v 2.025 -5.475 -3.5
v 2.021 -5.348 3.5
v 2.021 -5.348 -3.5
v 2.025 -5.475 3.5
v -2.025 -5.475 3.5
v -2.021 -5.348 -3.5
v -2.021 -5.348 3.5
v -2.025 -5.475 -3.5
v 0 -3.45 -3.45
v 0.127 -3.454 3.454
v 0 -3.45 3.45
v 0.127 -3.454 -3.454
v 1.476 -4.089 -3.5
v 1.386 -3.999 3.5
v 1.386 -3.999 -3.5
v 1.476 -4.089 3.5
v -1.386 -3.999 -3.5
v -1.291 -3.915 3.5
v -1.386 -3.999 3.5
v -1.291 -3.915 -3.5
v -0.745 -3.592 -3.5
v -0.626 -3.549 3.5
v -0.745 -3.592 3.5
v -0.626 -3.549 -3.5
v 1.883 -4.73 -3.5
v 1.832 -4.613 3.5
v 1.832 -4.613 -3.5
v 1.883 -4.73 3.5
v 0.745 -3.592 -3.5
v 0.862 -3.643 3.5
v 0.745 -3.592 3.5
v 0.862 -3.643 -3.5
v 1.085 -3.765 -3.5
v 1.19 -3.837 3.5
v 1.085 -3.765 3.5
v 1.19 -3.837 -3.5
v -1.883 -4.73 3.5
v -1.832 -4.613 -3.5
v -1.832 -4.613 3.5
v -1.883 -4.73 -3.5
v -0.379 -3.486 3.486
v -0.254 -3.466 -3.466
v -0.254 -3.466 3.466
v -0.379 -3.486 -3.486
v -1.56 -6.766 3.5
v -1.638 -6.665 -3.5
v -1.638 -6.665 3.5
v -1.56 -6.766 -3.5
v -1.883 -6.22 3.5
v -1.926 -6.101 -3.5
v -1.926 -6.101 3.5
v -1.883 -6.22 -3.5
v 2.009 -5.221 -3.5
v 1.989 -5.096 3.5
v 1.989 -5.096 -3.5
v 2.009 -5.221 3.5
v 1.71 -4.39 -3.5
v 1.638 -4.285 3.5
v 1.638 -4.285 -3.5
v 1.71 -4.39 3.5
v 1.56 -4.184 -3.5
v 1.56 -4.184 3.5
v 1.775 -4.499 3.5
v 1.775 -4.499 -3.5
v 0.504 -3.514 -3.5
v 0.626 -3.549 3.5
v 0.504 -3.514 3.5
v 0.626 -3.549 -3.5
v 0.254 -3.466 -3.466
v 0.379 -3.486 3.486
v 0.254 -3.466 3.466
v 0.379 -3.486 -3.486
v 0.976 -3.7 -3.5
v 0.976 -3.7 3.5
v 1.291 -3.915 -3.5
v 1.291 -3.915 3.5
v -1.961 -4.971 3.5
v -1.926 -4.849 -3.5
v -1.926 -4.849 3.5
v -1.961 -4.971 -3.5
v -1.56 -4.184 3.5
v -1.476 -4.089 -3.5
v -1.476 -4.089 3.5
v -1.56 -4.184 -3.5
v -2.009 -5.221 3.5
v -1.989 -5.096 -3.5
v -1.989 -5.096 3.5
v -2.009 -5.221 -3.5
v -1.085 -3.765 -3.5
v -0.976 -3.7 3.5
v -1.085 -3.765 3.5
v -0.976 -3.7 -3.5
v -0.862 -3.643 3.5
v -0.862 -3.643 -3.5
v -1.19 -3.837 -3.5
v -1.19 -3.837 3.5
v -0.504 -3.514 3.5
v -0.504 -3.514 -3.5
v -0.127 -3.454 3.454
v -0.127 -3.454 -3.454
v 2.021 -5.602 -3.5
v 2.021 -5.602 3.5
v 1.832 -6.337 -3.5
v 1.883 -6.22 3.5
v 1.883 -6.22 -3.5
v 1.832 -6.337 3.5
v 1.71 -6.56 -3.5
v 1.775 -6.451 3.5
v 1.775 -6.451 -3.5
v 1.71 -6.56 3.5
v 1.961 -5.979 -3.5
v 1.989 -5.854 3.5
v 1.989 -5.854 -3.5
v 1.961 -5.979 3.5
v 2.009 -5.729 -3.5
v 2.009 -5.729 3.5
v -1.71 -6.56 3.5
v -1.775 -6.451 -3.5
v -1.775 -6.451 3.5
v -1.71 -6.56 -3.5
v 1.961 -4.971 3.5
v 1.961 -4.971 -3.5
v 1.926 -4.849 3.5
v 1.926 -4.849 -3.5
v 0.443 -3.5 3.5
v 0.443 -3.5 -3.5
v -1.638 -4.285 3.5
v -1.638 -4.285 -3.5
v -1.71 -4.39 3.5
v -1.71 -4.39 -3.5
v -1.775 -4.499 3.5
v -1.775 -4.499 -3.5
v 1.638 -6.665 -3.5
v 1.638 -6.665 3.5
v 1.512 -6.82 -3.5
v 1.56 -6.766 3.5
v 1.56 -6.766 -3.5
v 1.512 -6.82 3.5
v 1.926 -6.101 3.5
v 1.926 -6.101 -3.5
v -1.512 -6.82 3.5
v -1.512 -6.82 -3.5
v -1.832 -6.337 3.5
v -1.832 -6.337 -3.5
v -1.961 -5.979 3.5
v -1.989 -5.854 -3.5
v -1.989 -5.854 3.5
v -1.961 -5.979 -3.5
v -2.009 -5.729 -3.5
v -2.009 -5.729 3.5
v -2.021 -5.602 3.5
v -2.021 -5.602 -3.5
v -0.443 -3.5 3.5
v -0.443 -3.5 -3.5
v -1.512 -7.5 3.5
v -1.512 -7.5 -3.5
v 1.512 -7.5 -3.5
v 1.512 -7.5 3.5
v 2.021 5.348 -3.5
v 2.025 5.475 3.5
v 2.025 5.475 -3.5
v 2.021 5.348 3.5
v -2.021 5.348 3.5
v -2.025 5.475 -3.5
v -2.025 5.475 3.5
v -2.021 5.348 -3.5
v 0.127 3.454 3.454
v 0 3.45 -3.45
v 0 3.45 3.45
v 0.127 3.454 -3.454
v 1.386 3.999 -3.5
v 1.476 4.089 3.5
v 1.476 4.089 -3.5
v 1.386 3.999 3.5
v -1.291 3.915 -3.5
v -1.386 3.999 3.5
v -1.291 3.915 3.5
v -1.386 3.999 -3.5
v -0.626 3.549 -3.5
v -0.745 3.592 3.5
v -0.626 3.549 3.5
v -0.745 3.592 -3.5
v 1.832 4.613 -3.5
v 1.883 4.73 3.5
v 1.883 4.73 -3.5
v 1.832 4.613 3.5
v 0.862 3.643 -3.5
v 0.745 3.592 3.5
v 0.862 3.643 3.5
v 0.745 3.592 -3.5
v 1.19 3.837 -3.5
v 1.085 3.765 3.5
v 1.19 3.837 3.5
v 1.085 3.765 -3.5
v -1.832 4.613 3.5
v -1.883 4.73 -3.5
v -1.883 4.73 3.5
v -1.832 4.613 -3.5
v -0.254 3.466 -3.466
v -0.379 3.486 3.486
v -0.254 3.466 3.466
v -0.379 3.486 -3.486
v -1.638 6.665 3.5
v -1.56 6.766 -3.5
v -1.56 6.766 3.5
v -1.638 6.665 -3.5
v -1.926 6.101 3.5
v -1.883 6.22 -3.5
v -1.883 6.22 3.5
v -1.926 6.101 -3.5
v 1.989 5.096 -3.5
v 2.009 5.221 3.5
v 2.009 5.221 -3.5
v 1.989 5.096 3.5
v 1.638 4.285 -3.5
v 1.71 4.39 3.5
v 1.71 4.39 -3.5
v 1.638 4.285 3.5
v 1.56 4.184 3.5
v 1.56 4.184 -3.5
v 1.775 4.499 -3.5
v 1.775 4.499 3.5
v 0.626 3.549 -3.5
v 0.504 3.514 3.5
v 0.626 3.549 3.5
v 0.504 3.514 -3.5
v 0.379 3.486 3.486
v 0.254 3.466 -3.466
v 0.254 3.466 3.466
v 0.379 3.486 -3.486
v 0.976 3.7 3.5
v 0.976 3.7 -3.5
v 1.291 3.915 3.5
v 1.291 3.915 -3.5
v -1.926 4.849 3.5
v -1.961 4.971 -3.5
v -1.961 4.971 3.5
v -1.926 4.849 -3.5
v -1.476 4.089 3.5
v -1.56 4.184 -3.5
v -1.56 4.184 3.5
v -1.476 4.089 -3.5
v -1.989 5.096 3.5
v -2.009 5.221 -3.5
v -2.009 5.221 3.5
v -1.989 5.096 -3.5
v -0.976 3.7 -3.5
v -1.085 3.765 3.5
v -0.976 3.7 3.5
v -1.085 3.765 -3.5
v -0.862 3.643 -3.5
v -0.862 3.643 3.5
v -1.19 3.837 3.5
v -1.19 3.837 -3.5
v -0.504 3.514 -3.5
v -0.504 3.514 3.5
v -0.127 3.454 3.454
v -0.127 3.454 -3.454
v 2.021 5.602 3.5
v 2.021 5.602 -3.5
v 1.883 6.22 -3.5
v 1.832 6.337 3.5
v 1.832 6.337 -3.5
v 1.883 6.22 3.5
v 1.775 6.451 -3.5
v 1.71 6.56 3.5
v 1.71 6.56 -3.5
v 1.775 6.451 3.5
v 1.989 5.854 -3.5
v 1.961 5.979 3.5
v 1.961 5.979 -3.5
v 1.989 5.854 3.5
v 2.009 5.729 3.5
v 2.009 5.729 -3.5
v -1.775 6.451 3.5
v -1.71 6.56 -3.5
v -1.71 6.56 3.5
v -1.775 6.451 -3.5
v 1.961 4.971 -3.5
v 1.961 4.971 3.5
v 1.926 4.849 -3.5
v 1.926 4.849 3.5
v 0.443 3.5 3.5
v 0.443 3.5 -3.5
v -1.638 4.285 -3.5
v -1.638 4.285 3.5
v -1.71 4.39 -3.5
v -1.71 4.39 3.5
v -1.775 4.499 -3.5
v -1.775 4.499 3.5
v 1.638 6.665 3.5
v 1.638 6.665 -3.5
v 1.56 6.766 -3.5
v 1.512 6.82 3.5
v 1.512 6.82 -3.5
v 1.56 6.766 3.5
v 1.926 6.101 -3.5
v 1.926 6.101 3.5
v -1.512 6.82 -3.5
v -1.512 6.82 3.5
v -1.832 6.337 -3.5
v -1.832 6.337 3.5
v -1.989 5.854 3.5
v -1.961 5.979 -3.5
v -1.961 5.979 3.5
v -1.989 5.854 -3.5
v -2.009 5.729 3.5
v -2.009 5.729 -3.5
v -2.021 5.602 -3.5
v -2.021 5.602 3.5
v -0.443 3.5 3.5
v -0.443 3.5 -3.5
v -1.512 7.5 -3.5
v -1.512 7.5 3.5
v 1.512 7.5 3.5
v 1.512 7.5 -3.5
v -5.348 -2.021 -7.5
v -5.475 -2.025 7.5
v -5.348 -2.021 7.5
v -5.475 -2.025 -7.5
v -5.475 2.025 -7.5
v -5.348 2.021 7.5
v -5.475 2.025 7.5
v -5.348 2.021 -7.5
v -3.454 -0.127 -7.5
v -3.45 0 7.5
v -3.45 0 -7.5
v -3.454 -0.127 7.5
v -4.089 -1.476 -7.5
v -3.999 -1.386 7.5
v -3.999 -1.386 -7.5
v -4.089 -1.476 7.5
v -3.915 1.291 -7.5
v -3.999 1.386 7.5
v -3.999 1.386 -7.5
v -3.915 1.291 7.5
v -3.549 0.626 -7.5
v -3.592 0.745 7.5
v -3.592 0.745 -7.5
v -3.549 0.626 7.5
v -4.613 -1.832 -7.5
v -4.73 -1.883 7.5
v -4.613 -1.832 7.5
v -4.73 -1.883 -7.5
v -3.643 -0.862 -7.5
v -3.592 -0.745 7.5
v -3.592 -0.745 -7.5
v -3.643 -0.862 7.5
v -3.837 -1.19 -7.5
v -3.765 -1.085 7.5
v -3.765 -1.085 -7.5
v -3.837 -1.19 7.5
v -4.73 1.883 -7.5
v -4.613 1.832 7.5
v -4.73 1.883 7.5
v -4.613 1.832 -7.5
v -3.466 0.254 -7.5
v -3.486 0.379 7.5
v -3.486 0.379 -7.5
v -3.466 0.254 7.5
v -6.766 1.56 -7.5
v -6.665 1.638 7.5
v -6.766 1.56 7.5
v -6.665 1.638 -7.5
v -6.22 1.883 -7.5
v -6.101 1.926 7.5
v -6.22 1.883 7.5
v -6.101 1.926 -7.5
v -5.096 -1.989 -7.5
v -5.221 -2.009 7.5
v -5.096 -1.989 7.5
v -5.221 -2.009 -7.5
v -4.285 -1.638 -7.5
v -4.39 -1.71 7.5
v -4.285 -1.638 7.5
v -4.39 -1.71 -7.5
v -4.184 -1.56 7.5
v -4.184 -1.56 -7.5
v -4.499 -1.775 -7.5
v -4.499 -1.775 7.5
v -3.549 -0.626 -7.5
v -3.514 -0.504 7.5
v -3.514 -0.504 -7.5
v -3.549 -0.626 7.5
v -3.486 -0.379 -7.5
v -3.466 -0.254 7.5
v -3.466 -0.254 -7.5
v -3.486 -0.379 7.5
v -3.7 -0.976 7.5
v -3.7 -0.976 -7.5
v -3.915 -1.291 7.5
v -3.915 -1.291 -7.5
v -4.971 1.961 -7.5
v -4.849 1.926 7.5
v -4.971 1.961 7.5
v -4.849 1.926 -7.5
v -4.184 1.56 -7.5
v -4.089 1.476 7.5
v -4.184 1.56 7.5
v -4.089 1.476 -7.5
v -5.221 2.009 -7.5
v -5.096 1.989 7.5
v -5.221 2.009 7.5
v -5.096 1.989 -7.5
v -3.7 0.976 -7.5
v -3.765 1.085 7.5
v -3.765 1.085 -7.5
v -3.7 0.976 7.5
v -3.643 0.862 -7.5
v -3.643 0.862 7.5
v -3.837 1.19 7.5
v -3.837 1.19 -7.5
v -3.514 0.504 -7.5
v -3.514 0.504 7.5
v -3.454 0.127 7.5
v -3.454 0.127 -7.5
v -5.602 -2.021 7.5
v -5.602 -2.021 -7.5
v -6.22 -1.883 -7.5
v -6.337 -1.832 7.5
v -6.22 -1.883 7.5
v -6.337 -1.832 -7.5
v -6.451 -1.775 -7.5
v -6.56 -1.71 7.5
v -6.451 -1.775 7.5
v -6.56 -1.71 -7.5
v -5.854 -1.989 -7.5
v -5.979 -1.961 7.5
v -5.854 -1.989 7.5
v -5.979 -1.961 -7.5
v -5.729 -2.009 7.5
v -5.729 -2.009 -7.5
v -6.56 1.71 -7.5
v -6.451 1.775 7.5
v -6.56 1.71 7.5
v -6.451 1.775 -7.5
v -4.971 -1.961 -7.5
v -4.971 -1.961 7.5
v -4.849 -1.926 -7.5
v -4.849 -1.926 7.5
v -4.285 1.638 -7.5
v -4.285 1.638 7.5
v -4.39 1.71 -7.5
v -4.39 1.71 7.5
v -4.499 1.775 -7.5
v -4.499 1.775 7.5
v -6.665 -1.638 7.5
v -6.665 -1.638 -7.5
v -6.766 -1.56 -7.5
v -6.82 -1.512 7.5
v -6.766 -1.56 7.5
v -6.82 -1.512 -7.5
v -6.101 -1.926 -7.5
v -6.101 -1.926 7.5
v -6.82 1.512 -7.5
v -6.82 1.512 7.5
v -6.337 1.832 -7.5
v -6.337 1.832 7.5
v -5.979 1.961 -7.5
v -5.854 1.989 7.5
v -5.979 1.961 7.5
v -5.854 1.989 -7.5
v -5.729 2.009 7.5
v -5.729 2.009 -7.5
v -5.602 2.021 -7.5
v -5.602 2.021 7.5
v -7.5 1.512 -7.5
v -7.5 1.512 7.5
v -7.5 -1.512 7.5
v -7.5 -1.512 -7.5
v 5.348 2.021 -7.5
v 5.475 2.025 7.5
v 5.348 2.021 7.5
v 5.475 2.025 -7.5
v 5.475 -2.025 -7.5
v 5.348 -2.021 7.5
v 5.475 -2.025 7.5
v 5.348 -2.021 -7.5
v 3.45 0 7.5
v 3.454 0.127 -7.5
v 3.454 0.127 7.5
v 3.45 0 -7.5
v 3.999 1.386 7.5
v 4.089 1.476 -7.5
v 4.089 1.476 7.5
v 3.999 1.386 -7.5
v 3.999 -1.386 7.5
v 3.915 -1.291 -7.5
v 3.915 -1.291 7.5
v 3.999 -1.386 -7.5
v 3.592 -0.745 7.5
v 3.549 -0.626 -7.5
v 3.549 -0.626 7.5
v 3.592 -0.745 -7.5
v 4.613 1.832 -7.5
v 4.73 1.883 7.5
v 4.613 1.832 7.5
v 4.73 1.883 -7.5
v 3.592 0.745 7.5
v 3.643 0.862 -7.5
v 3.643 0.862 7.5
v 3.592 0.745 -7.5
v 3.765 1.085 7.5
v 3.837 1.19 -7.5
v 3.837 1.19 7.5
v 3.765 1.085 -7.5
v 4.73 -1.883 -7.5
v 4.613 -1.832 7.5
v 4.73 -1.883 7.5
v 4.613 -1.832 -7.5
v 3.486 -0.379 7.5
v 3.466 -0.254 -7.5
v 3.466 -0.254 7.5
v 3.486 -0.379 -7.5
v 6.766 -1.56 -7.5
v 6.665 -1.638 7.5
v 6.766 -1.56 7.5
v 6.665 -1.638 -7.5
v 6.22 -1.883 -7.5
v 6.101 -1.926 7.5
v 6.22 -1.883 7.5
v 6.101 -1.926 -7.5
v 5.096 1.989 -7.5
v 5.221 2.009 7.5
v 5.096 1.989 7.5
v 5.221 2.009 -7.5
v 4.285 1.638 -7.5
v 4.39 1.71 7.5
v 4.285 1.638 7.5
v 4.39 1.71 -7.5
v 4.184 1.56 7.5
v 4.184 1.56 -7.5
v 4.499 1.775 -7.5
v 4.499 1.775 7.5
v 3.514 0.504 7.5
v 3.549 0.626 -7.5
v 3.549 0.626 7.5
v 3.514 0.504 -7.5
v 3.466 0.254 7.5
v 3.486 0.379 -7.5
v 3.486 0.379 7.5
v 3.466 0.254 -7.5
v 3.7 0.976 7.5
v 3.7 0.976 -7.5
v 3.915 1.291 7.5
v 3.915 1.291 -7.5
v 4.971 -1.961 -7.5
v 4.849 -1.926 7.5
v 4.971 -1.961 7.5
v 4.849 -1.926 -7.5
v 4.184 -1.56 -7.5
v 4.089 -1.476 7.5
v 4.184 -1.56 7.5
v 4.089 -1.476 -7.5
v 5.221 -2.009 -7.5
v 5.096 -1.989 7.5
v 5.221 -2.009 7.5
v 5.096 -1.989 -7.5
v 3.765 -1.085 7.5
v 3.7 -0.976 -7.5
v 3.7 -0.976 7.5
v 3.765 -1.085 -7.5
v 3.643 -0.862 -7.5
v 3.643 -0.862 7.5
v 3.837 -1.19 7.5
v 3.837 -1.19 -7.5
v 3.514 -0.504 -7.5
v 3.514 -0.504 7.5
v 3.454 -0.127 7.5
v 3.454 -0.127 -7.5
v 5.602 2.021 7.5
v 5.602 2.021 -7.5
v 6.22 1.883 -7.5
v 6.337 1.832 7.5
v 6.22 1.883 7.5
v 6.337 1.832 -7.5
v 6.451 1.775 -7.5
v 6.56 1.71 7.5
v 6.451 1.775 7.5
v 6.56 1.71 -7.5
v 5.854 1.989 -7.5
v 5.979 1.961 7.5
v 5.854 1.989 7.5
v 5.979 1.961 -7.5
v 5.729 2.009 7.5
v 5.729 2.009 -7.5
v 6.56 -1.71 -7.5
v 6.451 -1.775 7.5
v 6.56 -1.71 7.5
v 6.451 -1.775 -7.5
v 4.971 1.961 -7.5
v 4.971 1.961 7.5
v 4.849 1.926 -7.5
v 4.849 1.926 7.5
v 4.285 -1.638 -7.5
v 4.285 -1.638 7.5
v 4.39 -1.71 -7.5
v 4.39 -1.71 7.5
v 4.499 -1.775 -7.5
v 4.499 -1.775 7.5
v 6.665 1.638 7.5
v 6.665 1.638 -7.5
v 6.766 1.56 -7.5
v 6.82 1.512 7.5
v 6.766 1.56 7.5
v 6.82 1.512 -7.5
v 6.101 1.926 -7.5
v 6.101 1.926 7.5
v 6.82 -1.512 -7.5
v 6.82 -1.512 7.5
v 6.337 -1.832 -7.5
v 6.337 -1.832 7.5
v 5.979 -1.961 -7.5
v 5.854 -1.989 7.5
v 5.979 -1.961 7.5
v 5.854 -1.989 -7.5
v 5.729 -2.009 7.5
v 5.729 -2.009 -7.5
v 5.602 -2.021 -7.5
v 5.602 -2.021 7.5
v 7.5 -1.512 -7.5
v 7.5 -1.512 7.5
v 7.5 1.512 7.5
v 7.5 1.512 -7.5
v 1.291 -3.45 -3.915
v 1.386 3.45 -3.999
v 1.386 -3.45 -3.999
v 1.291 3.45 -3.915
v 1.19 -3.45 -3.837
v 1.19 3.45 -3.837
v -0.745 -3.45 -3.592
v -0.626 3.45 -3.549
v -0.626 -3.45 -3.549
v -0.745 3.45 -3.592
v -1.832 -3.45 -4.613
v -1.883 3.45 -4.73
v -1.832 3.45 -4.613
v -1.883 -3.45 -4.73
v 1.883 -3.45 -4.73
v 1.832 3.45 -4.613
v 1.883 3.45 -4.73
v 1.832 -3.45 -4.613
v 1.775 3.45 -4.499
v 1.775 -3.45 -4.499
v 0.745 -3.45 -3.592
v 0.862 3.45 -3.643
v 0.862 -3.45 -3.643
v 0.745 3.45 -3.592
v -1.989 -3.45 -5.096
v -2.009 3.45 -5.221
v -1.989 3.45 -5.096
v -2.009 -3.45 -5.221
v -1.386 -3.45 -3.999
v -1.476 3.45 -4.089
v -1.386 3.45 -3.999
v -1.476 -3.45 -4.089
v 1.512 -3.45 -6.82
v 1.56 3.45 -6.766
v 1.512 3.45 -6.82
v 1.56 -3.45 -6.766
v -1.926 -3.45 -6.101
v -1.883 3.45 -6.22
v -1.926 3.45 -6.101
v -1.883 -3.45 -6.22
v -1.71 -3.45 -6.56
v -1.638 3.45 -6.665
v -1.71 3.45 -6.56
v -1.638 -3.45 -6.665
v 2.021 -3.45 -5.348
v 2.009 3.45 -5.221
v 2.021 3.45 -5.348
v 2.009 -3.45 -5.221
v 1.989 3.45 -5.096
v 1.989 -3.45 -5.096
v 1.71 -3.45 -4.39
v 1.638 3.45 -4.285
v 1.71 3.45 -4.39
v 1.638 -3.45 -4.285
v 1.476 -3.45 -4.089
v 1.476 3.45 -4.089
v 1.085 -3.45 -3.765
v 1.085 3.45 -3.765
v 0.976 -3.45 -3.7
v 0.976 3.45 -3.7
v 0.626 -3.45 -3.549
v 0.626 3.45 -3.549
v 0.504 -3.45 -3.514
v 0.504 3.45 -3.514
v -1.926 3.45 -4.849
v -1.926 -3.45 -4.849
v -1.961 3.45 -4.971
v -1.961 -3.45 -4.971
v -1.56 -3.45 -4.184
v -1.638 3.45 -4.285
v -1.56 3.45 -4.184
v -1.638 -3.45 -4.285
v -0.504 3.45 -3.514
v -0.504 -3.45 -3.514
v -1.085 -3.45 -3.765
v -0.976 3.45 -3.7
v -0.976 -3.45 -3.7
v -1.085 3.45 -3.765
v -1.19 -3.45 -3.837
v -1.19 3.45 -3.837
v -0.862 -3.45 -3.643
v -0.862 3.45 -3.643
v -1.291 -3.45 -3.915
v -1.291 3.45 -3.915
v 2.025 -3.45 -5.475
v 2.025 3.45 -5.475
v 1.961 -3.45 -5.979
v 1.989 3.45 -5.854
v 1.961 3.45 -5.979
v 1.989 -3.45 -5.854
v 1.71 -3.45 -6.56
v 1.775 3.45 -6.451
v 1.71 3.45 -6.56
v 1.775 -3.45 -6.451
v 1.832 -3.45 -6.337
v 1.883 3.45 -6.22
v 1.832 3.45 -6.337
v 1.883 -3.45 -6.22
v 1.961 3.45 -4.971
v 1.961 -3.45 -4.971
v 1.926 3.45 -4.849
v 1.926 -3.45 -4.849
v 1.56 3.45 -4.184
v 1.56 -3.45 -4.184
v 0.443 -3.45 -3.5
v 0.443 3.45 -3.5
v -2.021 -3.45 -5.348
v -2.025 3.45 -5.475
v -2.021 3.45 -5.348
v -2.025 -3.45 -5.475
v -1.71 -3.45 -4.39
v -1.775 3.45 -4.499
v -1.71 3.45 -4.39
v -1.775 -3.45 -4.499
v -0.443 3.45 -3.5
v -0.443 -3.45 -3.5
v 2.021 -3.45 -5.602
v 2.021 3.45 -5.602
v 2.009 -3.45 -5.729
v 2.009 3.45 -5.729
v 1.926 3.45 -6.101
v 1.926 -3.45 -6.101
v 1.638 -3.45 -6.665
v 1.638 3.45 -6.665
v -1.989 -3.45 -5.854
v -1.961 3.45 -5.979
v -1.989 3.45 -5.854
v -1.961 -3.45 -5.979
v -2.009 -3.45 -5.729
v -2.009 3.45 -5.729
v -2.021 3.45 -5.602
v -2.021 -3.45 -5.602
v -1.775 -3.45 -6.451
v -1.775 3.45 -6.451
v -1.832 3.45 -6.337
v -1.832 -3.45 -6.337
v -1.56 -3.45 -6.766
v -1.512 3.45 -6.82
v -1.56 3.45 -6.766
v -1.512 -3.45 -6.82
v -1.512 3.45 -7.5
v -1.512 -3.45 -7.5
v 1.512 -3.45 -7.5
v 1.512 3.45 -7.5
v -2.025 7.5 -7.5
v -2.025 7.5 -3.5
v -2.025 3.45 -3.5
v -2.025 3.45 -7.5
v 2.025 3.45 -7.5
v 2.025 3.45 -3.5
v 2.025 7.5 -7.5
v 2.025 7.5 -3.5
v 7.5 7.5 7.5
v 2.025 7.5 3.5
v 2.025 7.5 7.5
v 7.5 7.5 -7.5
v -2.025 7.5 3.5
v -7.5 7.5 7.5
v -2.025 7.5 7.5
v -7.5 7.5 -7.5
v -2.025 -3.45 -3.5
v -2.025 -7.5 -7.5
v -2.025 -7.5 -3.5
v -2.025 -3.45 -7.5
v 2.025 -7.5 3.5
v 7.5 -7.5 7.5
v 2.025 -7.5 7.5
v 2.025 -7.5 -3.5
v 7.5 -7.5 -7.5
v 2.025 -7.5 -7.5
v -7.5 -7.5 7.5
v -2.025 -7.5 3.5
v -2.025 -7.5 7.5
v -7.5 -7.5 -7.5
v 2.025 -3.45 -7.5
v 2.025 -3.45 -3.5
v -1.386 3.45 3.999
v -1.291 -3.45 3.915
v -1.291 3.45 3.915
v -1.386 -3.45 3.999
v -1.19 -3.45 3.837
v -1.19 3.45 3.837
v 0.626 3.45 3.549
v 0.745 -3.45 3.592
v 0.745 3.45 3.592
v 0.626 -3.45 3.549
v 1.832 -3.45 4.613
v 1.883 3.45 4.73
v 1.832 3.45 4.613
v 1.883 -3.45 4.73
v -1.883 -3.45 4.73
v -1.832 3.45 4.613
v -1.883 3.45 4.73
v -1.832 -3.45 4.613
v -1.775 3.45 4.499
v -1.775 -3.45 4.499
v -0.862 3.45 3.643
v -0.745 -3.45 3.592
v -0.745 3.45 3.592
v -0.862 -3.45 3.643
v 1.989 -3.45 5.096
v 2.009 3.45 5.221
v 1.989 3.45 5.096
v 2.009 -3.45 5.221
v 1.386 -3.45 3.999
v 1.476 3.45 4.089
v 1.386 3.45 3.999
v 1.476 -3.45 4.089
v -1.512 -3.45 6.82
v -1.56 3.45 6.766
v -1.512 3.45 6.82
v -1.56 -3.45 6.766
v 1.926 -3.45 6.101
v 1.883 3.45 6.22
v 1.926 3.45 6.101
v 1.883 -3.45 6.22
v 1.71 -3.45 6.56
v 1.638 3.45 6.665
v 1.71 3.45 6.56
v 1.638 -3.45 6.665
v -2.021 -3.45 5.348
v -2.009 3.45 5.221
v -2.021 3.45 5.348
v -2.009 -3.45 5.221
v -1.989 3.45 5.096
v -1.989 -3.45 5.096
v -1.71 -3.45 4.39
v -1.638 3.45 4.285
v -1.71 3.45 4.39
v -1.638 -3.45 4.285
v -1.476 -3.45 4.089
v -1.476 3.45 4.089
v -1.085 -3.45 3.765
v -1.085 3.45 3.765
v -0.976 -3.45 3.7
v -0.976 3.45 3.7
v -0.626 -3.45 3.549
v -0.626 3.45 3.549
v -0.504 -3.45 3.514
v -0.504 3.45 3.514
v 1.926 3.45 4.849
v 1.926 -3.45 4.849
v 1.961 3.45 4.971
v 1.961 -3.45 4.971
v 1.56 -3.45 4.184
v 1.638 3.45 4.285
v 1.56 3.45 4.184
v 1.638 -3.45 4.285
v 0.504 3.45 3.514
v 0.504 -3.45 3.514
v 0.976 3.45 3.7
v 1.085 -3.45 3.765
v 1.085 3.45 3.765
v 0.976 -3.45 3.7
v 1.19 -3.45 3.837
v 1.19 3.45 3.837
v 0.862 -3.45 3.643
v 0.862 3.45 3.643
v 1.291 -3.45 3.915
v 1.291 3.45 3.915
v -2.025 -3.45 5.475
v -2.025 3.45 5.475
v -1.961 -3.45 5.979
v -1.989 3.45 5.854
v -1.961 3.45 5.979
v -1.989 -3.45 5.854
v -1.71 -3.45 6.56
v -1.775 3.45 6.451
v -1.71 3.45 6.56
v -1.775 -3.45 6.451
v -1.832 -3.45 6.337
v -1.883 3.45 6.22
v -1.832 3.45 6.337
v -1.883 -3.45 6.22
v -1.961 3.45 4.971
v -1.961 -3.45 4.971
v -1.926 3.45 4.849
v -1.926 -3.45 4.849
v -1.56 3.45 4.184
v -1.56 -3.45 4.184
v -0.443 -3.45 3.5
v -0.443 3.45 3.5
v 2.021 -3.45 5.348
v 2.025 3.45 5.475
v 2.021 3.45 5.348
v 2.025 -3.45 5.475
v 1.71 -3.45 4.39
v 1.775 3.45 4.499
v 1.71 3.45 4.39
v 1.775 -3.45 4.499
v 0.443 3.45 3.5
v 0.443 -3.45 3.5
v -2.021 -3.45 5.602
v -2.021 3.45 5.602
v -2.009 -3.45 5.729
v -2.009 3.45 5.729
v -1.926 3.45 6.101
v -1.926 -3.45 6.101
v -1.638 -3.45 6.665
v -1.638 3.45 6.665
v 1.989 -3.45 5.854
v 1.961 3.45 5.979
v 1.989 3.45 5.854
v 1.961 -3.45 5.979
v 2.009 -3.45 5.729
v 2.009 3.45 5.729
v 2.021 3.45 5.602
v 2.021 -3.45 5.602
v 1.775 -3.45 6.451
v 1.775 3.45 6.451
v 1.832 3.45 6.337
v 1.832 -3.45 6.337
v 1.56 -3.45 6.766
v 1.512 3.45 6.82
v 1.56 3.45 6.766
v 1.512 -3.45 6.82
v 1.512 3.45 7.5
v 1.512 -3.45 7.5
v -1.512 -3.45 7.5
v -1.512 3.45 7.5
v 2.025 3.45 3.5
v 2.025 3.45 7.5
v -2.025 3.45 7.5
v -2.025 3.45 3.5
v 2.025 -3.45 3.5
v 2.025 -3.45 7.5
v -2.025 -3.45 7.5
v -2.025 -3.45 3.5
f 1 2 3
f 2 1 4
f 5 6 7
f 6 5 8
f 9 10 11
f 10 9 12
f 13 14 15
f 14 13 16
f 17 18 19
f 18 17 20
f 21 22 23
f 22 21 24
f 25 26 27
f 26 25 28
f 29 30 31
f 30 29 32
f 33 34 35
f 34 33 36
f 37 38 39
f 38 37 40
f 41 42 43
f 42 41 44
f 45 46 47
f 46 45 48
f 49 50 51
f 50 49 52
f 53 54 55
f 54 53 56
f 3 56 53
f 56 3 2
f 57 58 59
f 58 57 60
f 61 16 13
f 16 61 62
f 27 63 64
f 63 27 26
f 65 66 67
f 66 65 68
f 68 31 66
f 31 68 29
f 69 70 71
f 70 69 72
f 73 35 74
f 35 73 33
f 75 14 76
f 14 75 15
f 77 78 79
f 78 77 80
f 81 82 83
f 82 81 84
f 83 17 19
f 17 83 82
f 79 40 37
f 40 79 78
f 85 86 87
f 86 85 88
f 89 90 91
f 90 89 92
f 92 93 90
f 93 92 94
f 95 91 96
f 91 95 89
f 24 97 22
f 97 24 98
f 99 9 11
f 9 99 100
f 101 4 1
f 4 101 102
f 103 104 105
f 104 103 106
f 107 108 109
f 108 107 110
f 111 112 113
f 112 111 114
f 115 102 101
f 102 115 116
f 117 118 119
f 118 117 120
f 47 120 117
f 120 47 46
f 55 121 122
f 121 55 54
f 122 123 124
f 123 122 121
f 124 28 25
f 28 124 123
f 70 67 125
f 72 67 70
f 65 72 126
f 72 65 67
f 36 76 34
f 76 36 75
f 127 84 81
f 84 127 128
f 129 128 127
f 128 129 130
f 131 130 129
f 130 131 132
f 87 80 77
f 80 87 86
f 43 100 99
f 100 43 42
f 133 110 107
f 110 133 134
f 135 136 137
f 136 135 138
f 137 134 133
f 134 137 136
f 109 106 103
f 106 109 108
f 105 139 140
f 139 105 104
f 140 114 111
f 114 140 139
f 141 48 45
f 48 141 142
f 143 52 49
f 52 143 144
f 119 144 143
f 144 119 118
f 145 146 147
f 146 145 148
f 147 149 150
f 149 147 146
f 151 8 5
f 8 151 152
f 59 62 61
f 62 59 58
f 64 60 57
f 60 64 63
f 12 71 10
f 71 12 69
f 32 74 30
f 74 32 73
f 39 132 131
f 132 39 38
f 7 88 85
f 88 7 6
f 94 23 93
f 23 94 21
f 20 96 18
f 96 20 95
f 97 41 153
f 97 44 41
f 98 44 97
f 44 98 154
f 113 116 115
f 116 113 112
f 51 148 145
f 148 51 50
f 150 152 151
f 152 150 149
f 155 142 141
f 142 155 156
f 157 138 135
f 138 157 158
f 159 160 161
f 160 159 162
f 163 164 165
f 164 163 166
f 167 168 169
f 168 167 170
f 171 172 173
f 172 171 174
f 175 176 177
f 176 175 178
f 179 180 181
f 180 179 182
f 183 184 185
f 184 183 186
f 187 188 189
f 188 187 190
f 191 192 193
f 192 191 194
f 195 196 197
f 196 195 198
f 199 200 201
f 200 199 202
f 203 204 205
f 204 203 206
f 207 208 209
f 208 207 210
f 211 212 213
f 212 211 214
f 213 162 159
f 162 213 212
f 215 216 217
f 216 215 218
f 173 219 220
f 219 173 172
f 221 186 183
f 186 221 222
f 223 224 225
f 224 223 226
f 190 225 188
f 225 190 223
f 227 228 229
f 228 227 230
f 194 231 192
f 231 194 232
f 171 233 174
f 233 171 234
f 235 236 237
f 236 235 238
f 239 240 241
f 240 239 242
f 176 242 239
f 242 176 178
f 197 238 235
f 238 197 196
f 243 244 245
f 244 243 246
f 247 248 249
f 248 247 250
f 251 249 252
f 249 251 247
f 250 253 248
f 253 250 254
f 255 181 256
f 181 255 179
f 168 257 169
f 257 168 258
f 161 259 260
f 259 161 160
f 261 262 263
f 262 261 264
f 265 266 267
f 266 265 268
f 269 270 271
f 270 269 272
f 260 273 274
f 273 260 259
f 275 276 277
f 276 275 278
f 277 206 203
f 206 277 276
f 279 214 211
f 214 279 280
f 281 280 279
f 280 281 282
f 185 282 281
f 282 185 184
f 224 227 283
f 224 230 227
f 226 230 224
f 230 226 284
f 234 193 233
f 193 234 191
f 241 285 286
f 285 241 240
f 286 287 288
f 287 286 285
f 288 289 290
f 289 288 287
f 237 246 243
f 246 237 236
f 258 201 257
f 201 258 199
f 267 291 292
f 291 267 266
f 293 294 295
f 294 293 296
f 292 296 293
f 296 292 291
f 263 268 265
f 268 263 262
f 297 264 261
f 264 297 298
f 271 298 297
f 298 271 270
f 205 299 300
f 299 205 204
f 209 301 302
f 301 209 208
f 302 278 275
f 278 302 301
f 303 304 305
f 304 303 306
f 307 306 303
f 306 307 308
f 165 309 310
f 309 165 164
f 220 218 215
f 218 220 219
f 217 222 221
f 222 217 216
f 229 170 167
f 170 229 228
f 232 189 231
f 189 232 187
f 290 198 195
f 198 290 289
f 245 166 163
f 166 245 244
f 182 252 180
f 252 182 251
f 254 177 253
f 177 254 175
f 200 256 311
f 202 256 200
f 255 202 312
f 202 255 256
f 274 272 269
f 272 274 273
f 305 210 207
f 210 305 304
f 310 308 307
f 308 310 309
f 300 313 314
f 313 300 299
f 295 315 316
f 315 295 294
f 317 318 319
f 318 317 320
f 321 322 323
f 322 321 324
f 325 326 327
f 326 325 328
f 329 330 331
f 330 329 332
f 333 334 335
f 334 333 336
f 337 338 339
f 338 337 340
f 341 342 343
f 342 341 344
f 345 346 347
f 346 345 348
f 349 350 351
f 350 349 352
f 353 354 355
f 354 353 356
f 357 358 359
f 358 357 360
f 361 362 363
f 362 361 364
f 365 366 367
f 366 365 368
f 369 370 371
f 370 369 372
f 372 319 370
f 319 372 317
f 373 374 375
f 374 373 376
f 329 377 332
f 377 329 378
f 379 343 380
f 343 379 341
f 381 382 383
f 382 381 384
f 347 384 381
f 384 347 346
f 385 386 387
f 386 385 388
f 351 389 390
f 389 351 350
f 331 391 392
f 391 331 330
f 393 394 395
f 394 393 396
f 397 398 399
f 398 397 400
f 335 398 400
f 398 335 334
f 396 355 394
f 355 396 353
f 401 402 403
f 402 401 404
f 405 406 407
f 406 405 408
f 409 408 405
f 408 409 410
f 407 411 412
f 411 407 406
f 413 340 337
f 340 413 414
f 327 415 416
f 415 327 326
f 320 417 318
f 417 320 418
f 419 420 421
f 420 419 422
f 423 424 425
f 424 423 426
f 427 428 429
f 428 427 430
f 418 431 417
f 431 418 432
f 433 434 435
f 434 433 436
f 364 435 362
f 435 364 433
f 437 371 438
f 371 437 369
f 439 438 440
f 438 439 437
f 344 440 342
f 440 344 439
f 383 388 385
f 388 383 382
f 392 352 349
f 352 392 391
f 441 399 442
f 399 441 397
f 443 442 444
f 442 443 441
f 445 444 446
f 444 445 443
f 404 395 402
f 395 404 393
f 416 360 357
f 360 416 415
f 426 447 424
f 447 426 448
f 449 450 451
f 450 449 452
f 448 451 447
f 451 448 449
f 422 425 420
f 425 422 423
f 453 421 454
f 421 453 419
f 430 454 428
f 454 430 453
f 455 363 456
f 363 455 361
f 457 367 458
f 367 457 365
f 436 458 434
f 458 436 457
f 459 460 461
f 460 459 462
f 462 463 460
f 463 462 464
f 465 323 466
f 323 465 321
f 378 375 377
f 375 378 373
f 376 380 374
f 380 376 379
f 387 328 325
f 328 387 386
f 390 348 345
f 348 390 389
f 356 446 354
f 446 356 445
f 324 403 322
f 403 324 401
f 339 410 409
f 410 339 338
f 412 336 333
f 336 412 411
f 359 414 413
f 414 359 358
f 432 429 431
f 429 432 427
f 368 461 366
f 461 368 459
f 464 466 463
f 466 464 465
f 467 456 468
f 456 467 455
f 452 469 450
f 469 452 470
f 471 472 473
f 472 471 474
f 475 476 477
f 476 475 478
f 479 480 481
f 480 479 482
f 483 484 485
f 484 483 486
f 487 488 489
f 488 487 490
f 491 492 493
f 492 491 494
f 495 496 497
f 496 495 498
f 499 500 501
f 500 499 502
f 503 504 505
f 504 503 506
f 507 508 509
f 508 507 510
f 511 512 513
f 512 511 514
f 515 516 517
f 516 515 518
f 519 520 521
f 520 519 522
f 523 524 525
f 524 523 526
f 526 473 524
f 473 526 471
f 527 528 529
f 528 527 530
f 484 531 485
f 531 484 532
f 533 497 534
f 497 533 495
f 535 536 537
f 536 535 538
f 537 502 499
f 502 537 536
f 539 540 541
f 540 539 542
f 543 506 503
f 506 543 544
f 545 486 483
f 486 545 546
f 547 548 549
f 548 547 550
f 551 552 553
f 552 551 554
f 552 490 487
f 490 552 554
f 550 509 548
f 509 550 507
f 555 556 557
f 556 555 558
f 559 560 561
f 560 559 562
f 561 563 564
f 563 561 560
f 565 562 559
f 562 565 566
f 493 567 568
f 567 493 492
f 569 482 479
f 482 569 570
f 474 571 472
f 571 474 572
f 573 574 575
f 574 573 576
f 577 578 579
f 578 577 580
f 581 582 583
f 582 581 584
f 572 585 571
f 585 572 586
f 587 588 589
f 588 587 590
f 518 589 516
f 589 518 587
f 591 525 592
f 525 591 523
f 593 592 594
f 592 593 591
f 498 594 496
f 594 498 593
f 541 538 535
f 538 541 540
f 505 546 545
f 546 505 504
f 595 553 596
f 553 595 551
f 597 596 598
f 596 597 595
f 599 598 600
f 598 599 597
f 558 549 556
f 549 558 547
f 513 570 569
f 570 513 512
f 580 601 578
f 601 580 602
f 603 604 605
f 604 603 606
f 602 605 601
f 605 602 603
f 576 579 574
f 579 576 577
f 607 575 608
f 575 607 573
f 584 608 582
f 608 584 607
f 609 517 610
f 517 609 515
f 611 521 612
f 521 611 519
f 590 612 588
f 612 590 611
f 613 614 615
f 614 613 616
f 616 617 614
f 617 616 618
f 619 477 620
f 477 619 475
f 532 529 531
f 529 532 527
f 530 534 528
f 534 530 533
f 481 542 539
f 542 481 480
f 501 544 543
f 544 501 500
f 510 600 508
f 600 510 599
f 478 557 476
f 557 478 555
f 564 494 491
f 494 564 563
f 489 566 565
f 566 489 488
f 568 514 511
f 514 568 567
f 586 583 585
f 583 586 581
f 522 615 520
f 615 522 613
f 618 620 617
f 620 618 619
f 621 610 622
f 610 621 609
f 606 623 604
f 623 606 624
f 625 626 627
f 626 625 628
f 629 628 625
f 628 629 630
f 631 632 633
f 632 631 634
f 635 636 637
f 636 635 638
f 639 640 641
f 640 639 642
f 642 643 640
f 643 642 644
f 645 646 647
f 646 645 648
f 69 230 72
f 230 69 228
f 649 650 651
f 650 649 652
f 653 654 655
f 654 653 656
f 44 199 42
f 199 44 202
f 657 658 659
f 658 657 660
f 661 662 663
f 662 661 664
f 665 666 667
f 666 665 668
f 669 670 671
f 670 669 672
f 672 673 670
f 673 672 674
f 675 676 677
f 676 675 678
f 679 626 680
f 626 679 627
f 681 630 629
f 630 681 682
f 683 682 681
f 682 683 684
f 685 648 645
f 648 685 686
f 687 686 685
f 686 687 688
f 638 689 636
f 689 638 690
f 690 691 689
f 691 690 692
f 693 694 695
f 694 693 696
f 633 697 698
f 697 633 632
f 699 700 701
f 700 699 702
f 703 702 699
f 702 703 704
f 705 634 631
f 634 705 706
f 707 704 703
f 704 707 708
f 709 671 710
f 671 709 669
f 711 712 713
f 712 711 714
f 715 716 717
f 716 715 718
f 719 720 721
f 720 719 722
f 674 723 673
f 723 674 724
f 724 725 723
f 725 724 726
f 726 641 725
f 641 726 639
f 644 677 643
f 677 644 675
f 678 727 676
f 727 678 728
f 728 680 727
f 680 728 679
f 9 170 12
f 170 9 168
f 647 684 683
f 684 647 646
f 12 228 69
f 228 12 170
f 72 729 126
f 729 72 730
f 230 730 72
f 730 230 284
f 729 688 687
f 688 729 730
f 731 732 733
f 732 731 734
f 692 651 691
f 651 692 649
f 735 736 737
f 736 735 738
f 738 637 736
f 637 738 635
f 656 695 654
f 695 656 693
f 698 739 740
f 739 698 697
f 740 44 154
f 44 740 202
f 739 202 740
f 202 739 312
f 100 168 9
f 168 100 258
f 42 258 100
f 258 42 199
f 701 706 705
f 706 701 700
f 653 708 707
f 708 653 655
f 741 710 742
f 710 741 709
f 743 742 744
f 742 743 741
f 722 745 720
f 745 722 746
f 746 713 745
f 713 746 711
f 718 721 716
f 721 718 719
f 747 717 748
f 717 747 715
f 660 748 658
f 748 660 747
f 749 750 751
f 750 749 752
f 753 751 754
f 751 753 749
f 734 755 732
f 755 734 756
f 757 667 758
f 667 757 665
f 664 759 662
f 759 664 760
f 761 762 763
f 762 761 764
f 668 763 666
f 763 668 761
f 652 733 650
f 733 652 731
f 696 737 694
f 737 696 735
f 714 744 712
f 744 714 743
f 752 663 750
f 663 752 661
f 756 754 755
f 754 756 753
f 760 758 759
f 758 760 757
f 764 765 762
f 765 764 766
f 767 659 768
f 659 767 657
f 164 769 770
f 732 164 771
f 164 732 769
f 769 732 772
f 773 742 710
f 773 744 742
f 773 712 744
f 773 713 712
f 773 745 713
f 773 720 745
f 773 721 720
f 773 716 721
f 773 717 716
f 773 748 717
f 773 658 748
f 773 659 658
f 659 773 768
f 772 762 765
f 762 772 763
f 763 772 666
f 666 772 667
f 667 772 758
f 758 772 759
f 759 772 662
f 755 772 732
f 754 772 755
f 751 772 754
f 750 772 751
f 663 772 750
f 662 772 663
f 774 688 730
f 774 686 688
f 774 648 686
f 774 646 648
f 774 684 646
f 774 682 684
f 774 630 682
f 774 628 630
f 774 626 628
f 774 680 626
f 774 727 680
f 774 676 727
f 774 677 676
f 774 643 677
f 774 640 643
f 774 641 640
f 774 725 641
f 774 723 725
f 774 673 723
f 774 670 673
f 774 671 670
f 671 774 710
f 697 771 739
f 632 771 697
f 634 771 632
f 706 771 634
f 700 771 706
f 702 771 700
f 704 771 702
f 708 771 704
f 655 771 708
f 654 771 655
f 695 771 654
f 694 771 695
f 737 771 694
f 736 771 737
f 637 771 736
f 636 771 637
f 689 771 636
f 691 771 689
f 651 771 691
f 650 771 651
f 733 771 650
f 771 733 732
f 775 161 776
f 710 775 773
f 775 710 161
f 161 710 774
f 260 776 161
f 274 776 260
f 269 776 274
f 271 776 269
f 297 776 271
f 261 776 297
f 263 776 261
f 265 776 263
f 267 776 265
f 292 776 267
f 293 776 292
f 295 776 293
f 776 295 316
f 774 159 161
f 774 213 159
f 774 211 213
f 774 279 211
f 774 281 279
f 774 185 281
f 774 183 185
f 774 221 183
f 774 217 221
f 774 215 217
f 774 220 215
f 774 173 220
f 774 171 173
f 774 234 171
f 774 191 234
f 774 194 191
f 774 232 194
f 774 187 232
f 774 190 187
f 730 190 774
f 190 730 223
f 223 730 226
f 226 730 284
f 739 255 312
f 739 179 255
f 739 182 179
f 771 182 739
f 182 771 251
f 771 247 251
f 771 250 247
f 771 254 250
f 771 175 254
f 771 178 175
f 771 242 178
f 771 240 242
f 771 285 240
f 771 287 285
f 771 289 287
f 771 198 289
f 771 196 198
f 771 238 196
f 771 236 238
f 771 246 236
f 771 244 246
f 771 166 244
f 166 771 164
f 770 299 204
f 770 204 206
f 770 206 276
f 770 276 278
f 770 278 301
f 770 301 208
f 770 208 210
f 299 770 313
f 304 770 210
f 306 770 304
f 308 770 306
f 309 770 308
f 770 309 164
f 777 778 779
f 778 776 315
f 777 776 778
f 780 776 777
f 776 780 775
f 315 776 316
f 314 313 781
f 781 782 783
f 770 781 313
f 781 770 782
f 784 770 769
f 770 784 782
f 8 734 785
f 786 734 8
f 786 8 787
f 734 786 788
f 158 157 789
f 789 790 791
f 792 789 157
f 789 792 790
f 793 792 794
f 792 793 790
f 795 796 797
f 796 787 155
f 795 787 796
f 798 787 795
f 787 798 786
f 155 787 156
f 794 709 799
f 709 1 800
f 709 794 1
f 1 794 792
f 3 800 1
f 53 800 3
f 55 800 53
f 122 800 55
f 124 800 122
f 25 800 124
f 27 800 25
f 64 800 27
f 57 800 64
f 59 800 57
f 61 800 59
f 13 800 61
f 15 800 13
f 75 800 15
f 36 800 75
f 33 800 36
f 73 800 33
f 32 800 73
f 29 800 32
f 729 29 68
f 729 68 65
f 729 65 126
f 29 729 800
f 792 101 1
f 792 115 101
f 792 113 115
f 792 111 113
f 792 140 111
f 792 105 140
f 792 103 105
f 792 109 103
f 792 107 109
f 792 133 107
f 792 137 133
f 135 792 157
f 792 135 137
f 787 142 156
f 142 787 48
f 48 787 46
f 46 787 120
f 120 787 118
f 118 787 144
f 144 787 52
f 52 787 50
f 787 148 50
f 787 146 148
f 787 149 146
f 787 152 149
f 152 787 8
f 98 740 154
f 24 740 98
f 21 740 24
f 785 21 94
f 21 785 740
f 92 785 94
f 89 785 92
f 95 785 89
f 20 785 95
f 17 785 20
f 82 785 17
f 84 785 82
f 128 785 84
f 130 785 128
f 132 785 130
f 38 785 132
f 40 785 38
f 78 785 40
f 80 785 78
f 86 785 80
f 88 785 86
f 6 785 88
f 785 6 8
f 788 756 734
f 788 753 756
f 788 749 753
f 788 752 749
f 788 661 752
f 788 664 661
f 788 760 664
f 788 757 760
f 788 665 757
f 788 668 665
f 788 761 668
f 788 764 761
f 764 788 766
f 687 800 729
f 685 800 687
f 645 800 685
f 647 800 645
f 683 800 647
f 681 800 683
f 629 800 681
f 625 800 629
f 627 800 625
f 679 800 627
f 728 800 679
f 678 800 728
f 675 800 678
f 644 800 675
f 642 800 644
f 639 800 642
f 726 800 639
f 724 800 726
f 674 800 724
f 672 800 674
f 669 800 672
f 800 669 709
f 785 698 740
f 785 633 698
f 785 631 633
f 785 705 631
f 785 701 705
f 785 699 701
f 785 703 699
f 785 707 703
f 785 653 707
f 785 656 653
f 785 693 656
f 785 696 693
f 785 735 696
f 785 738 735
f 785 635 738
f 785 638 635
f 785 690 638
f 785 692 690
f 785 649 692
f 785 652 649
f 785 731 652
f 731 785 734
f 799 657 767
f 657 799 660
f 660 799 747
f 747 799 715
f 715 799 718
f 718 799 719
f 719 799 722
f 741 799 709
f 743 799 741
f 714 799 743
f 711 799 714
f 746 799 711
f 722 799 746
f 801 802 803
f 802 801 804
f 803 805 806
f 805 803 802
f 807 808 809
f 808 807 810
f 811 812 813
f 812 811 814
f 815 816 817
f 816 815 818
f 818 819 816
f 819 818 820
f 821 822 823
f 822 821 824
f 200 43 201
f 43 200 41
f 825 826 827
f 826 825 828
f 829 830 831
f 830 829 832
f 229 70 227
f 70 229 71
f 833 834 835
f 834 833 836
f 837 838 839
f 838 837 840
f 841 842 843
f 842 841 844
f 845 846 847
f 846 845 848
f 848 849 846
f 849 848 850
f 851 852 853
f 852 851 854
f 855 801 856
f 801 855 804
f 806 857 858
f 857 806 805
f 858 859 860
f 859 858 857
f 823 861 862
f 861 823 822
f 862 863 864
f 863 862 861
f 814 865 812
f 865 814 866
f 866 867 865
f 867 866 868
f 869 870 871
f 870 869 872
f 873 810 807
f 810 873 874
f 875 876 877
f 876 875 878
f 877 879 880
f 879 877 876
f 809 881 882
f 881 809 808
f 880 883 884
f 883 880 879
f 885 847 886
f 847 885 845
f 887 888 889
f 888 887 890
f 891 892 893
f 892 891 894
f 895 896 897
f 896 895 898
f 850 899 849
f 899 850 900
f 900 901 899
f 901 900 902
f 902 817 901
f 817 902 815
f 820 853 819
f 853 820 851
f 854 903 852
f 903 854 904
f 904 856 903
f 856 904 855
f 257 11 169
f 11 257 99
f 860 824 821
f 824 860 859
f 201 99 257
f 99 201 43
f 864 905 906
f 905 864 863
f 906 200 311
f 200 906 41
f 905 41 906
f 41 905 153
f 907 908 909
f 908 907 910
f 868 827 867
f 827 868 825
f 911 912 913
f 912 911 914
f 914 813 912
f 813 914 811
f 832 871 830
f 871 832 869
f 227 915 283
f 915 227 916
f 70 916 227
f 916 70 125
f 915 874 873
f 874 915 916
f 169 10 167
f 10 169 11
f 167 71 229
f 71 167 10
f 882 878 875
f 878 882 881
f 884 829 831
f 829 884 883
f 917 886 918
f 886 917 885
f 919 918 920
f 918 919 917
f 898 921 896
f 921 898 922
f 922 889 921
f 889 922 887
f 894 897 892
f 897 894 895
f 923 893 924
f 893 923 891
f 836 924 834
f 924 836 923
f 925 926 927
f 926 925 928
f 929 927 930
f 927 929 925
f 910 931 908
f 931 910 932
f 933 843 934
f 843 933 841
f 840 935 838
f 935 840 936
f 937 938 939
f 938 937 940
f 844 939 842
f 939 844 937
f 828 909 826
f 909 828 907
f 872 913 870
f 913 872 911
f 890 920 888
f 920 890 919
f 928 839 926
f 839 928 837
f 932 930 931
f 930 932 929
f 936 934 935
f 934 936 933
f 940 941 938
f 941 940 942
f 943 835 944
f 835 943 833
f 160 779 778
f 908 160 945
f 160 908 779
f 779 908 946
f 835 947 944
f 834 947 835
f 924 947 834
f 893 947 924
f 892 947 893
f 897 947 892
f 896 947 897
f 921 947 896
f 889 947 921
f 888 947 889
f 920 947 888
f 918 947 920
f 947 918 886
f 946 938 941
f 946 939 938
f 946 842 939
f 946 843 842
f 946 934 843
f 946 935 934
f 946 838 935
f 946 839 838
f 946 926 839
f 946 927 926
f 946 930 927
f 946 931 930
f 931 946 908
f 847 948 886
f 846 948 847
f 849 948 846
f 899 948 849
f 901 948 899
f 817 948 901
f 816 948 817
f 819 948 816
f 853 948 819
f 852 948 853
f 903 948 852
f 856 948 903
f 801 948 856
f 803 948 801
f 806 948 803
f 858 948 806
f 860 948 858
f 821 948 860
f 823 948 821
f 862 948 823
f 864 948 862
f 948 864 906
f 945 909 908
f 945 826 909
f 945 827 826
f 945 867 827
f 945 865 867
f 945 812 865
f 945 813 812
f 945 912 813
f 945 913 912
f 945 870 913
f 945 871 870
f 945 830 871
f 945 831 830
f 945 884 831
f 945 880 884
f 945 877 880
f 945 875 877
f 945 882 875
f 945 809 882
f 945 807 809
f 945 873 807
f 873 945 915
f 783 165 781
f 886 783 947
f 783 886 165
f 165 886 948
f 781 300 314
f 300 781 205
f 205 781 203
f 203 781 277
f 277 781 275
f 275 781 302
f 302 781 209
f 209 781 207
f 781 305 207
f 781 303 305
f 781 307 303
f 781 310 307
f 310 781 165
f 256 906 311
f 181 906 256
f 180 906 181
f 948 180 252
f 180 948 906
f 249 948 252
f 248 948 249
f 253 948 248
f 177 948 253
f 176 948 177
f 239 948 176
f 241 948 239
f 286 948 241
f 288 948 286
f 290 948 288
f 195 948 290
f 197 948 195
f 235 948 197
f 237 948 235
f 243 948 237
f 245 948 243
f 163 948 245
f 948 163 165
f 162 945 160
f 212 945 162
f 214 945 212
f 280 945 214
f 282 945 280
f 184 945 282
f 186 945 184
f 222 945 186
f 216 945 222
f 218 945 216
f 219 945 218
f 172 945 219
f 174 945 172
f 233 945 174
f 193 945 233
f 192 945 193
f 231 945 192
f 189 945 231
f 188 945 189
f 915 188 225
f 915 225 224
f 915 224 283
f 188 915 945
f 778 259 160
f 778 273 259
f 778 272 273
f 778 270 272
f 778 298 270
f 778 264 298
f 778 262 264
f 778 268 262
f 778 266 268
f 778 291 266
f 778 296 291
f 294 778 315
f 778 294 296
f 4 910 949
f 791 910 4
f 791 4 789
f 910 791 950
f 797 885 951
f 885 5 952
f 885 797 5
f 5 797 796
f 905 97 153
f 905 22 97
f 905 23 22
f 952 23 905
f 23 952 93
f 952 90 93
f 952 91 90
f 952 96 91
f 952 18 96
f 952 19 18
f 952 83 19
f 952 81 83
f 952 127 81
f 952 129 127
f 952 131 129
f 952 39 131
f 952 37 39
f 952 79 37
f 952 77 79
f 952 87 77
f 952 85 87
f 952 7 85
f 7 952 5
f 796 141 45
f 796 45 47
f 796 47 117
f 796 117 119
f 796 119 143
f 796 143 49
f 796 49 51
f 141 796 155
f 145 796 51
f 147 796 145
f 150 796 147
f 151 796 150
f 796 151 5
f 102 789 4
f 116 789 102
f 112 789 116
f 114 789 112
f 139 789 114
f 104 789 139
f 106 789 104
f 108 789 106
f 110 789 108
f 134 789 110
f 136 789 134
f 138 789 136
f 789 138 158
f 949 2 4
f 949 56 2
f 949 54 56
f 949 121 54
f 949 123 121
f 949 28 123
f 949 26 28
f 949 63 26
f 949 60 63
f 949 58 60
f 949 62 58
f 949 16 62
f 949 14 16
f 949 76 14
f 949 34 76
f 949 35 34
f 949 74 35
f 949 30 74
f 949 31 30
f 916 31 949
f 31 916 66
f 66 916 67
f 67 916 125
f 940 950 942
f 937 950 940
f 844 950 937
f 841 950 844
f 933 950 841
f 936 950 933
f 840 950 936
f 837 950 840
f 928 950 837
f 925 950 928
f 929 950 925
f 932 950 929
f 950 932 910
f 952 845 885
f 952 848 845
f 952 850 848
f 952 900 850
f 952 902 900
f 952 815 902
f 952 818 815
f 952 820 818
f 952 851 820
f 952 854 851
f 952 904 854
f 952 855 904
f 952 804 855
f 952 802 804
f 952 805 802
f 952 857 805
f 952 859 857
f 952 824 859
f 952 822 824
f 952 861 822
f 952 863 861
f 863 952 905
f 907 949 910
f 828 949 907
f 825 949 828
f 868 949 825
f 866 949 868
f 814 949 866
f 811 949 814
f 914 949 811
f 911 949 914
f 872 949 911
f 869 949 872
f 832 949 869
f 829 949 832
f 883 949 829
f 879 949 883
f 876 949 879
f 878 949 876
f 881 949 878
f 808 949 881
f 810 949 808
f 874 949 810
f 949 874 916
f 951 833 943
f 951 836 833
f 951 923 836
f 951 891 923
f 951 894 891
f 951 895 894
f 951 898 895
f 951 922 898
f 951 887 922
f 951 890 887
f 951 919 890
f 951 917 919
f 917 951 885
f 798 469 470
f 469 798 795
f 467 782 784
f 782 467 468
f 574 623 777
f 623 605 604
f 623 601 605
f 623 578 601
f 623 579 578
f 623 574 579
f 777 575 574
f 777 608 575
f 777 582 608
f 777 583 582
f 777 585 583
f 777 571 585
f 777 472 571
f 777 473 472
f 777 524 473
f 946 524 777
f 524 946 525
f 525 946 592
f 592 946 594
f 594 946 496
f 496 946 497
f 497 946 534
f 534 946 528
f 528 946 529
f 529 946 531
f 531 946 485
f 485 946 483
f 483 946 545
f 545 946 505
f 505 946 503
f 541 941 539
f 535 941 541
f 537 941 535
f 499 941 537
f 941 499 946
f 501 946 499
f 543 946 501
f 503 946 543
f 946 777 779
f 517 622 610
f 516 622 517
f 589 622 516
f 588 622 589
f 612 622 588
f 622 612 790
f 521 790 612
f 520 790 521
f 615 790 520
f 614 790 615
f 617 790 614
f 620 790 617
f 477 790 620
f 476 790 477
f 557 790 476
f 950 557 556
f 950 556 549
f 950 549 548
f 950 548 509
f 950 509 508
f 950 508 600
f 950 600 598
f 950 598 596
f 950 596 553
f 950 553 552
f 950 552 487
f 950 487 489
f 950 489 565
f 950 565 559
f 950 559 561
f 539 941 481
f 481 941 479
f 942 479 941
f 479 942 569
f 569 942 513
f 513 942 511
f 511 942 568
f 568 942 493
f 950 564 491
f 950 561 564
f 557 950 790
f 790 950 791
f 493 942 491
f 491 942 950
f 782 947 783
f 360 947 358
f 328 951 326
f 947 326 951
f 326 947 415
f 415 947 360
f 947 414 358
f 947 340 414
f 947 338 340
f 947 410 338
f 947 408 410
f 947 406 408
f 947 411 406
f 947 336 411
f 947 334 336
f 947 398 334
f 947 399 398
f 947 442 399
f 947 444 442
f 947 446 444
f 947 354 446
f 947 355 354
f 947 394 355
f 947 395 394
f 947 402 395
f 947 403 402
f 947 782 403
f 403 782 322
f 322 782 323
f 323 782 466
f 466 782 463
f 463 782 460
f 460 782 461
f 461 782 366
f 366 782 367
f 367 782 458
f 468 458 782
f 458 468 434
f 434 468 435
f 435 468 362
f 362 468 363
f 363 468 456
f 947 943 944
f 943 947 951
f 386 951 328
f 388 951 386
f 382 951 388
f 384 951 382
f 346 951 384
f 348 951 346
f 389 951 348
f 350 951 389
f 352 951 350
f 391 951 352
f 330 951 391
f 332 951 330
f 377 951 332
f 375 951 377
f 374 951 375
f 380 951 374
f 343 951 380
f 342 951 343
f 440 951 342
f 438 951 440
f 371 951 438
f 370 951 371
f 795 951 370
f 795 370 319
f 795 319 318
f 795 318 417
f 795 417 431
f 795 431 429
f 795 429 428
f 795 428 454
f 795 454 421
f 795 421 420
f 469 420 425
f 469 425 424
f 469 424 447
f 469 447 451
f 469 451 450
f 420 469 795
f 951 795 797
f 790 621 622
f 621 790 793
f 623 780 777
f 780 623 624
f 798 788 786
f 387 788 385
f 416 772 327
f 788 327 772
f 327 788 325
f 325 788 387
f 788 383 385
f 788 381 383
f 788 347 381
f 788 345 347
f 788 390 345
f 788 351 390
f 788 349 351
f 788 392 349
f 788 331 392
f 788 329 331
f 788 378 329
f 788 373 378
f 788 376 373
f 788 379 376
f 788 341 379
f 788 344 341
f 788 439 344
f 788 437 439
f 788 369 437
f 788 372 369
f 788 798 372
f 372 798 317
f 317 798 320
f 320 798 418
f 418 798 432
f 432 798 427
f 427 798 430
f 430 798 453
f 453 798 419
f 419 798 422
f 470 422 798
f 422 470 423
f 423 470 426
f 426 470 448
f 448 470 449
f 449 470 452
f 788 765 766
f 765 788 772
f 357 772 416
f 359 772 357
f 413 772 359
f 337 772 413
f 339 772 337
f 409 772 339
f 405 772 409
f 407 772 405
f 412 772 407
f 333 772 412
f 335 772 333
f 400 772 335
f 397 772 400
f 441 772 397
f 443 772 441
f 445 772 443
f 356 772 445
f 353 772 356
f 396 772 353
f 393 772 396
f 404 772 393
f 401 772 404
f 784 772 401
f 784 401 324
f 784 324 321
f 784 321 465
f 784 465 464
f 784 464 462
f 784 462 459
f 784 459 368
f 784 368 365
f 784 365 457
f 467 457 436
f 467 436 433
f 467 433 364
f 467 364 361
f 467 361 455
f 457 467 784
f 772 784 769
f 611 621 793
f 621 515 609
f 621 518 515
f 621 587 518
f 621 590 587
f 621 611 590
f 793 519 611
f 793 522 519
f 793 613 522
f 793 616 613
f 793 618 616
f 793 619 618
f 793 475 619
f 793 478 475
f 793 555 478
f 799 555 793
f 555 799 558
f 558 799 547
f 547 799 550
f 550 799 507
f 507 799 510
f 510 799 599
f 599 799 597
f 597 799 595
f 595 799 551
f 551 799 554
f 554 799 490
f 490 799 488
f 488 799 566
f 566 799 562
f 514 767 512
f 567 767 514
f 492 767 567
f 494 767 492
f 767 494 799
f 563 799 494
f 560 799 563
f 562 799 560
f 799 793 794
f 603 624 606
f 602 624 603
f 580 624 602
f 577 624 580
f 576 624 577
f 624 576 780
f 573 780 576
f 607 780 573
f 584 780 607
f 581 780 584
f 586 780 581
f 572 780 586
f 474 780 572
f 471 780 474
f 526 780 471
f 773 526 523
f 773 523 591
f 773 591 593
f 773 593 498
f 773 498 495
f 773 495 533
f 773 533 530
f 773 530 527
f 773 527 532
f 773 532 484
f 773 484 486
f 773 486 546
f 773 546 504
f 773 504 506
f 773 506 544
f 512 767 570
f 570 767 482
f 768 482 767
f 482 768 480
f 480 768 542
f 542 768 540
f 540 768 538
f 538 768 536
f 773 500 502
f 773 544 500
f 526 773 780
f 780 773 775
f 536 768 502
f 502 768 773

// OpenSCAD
/**
 * Remix of http://www.thingiverse.com/thing:3574034
 * Fischertechnik blocks generator openscad by grumson is licensed under the Creative Commons - Attribution license.
 * http://creativecommons.org/licenses/by/3.0/
 */


NumberOfSegments = 1;
Length = 15;
TopConnector = true;
BottomConnector = true;
tolerance = 0.05;

RotateX = 0;
RotateY = 0;
RotateZ = 0;

segments = 100;

Main();



// MAIN
module Main() {

    Settings();
    Block();

}// Main()



// SETTINGS
module Settings() {
    
    if(NumberOfSegments < 1){NumberOfSegments = 1;}
    else if(NumberOfSegments > 10){NumberOfSegments = 10;}

}// Settings()



module Block() {
    
    rotate([RotateX, RotateY, RotateZ]) {

        difference(){

            width = NumberOfSegments * 15;

            cube(size=[ 15, width, Length], center=true);


            // START
            translate([0, -width/2 + 2 + tolerance/2, 0]) {
                union(){
                    cylinder(r=2 + tolerance / 2, h=Length + 1, center=true,$fn = segments);
                    translate([0, -2, 0]) {
                        cube(size=[3 + tolerance / 2, 3 + tolerance / 2, Length + 1], center=true);
                    }
                }
            }


            // END
            translate([0, width/2 - 2 - tolerance/2, 0]) {
                rotate([180, 0, 0]){
                    union(){
                        cylinder(r=2 + tolerance / 2, h=Length + 1, center=true,$fn = segments);
                        translate([0, -2, 0]) {
                            cube(size=[3 + tolerance / 2, 3 + tolerance / 2, Length + 1], center=true);
                        }
                    }
                }
            }
            

            // SIDE
            for(i = [1 : NumberOfSegments]){

                popX = 7.5 - 2 - tolerance / 2;

                // LEFT
                translate([-popX, -width /2  + 7.5, 0]) {
                    rotate([0, 0, -90]){
                        union(){
                            cylinder(r=2 + tolerance / 2, h=Length + 1, center=true,$fn = segments);
                            translate([0, -2, 0]) {
                                cube(size=[3 + tolerance / 2, 3 + tolerance / 2, Length + 1], center=true);
                            }
                        }
                    }
                }

                // RIGHT
                translate([popX, -width /2  + 7.5, 0]) {
                    rotate([0, 0, 90]){
                        union(){
                            cylinder(r=2 + tolerance / 2, h=Length + 1, center=true,$fn = segments);
                            translate([0, -2, 0]) {
                                cube(size=[3 + tolerance / 2, 3 + tolerance / 2, Length + 1], center=true);
                            }
                        }
                    }
                }

                // MULTI SEGMENTS
                if(i > 1){

                    popY = (width / 2) - i * 15 + 7.5;

                    // LEFT
                    translate([-popX, -popY, 0]) {
                        rotate([0, 0, -90]){
                            union(){
                                cylinder(r=2 + tolerance / 2, h=Length + 1, center=true,$fn = segments);
                                translate([0, -2, 0]) {
                                    cube(size=[3 + tolerance / 2, 3 + tolerance / 2, Length + 1], center=true);
                                }
                            }
                        }
                    }


                    // RIGHT
                    translate([popX, -popY, 0]) {
                        rotate([0, 0, 90]){
                            union(){
                                cylinder(r=2 + tolerance / 2, h=Length + 1, center=true,$fn = segments);
                                translate([0, -2, 0]) {
                                    cube(size=[3 + tolerance / 2, 3 + tolerance / 2, Length + 1], center=true);
                                }
                            }
                        }
                    }


                }


            }


            // TOP
            if(TopConnector){

                popY = (Length / 2) - 2 - tolerance / 2;

                translate([0, 0, popY]) {
                    rotate([90, 180, 0]){
                        union(){
                            cylinder(r=2 + tolerance / 2, h=width + 2, center=true,$fn = segments);
                            translate([0, -2, 0]) {
                                cube(size=[3 + tolerance / 2, 3 + tolerance / 2, width + 2], center=true);
                            };
                            translate([0, -tolerance, -width / 2 + (4 + tolerance) / 2]){
                                cube(size=[4 + tolerance, 4 + tolerance, 4 + tolerance], center=true);
                            };
                            translate([0, -tolerance, width / 2 - (4 + tolerance) / 2]){
                                cube(size=[4 + tolerance, 4 + tolerance, 4 + tolerance], center=true);
                            };
                        }
                    }
                }
            }


            // BOTTOM
            if(BottomConnector){

                popY = (Length / 2) - 2 - tolerance / 2;

                translate([0, 0, -popY]) {
                    rotate([90, 0, 0]){
                        union(){
                            cylinder(r=2 + tolerance / 2, h=width + 2, center=true,$fn = segments);
                            translate([0, -2, 0]) {
                                cube(size=[3 + tolerance / 2, 3 + tolerance / 2, width + 2], center=true);
                            };
                            translate([0, -tolerance, -width / 2 + (4 + tolerance) / 2]){
                                cube(size=[4 + tolerance, 4 + tolerance, 4 + tolerance], center=true);
                            };
                            translate([0, -tolerance, width / 2 - (4 + tolerance) / 2]){
                                cube(size=[4 + tolerance, 4 + tolerance, 4 + tolerance], center=true);
                            };
                        }
                    }
                }

            }

        }

    }
    
    

}// Block()
